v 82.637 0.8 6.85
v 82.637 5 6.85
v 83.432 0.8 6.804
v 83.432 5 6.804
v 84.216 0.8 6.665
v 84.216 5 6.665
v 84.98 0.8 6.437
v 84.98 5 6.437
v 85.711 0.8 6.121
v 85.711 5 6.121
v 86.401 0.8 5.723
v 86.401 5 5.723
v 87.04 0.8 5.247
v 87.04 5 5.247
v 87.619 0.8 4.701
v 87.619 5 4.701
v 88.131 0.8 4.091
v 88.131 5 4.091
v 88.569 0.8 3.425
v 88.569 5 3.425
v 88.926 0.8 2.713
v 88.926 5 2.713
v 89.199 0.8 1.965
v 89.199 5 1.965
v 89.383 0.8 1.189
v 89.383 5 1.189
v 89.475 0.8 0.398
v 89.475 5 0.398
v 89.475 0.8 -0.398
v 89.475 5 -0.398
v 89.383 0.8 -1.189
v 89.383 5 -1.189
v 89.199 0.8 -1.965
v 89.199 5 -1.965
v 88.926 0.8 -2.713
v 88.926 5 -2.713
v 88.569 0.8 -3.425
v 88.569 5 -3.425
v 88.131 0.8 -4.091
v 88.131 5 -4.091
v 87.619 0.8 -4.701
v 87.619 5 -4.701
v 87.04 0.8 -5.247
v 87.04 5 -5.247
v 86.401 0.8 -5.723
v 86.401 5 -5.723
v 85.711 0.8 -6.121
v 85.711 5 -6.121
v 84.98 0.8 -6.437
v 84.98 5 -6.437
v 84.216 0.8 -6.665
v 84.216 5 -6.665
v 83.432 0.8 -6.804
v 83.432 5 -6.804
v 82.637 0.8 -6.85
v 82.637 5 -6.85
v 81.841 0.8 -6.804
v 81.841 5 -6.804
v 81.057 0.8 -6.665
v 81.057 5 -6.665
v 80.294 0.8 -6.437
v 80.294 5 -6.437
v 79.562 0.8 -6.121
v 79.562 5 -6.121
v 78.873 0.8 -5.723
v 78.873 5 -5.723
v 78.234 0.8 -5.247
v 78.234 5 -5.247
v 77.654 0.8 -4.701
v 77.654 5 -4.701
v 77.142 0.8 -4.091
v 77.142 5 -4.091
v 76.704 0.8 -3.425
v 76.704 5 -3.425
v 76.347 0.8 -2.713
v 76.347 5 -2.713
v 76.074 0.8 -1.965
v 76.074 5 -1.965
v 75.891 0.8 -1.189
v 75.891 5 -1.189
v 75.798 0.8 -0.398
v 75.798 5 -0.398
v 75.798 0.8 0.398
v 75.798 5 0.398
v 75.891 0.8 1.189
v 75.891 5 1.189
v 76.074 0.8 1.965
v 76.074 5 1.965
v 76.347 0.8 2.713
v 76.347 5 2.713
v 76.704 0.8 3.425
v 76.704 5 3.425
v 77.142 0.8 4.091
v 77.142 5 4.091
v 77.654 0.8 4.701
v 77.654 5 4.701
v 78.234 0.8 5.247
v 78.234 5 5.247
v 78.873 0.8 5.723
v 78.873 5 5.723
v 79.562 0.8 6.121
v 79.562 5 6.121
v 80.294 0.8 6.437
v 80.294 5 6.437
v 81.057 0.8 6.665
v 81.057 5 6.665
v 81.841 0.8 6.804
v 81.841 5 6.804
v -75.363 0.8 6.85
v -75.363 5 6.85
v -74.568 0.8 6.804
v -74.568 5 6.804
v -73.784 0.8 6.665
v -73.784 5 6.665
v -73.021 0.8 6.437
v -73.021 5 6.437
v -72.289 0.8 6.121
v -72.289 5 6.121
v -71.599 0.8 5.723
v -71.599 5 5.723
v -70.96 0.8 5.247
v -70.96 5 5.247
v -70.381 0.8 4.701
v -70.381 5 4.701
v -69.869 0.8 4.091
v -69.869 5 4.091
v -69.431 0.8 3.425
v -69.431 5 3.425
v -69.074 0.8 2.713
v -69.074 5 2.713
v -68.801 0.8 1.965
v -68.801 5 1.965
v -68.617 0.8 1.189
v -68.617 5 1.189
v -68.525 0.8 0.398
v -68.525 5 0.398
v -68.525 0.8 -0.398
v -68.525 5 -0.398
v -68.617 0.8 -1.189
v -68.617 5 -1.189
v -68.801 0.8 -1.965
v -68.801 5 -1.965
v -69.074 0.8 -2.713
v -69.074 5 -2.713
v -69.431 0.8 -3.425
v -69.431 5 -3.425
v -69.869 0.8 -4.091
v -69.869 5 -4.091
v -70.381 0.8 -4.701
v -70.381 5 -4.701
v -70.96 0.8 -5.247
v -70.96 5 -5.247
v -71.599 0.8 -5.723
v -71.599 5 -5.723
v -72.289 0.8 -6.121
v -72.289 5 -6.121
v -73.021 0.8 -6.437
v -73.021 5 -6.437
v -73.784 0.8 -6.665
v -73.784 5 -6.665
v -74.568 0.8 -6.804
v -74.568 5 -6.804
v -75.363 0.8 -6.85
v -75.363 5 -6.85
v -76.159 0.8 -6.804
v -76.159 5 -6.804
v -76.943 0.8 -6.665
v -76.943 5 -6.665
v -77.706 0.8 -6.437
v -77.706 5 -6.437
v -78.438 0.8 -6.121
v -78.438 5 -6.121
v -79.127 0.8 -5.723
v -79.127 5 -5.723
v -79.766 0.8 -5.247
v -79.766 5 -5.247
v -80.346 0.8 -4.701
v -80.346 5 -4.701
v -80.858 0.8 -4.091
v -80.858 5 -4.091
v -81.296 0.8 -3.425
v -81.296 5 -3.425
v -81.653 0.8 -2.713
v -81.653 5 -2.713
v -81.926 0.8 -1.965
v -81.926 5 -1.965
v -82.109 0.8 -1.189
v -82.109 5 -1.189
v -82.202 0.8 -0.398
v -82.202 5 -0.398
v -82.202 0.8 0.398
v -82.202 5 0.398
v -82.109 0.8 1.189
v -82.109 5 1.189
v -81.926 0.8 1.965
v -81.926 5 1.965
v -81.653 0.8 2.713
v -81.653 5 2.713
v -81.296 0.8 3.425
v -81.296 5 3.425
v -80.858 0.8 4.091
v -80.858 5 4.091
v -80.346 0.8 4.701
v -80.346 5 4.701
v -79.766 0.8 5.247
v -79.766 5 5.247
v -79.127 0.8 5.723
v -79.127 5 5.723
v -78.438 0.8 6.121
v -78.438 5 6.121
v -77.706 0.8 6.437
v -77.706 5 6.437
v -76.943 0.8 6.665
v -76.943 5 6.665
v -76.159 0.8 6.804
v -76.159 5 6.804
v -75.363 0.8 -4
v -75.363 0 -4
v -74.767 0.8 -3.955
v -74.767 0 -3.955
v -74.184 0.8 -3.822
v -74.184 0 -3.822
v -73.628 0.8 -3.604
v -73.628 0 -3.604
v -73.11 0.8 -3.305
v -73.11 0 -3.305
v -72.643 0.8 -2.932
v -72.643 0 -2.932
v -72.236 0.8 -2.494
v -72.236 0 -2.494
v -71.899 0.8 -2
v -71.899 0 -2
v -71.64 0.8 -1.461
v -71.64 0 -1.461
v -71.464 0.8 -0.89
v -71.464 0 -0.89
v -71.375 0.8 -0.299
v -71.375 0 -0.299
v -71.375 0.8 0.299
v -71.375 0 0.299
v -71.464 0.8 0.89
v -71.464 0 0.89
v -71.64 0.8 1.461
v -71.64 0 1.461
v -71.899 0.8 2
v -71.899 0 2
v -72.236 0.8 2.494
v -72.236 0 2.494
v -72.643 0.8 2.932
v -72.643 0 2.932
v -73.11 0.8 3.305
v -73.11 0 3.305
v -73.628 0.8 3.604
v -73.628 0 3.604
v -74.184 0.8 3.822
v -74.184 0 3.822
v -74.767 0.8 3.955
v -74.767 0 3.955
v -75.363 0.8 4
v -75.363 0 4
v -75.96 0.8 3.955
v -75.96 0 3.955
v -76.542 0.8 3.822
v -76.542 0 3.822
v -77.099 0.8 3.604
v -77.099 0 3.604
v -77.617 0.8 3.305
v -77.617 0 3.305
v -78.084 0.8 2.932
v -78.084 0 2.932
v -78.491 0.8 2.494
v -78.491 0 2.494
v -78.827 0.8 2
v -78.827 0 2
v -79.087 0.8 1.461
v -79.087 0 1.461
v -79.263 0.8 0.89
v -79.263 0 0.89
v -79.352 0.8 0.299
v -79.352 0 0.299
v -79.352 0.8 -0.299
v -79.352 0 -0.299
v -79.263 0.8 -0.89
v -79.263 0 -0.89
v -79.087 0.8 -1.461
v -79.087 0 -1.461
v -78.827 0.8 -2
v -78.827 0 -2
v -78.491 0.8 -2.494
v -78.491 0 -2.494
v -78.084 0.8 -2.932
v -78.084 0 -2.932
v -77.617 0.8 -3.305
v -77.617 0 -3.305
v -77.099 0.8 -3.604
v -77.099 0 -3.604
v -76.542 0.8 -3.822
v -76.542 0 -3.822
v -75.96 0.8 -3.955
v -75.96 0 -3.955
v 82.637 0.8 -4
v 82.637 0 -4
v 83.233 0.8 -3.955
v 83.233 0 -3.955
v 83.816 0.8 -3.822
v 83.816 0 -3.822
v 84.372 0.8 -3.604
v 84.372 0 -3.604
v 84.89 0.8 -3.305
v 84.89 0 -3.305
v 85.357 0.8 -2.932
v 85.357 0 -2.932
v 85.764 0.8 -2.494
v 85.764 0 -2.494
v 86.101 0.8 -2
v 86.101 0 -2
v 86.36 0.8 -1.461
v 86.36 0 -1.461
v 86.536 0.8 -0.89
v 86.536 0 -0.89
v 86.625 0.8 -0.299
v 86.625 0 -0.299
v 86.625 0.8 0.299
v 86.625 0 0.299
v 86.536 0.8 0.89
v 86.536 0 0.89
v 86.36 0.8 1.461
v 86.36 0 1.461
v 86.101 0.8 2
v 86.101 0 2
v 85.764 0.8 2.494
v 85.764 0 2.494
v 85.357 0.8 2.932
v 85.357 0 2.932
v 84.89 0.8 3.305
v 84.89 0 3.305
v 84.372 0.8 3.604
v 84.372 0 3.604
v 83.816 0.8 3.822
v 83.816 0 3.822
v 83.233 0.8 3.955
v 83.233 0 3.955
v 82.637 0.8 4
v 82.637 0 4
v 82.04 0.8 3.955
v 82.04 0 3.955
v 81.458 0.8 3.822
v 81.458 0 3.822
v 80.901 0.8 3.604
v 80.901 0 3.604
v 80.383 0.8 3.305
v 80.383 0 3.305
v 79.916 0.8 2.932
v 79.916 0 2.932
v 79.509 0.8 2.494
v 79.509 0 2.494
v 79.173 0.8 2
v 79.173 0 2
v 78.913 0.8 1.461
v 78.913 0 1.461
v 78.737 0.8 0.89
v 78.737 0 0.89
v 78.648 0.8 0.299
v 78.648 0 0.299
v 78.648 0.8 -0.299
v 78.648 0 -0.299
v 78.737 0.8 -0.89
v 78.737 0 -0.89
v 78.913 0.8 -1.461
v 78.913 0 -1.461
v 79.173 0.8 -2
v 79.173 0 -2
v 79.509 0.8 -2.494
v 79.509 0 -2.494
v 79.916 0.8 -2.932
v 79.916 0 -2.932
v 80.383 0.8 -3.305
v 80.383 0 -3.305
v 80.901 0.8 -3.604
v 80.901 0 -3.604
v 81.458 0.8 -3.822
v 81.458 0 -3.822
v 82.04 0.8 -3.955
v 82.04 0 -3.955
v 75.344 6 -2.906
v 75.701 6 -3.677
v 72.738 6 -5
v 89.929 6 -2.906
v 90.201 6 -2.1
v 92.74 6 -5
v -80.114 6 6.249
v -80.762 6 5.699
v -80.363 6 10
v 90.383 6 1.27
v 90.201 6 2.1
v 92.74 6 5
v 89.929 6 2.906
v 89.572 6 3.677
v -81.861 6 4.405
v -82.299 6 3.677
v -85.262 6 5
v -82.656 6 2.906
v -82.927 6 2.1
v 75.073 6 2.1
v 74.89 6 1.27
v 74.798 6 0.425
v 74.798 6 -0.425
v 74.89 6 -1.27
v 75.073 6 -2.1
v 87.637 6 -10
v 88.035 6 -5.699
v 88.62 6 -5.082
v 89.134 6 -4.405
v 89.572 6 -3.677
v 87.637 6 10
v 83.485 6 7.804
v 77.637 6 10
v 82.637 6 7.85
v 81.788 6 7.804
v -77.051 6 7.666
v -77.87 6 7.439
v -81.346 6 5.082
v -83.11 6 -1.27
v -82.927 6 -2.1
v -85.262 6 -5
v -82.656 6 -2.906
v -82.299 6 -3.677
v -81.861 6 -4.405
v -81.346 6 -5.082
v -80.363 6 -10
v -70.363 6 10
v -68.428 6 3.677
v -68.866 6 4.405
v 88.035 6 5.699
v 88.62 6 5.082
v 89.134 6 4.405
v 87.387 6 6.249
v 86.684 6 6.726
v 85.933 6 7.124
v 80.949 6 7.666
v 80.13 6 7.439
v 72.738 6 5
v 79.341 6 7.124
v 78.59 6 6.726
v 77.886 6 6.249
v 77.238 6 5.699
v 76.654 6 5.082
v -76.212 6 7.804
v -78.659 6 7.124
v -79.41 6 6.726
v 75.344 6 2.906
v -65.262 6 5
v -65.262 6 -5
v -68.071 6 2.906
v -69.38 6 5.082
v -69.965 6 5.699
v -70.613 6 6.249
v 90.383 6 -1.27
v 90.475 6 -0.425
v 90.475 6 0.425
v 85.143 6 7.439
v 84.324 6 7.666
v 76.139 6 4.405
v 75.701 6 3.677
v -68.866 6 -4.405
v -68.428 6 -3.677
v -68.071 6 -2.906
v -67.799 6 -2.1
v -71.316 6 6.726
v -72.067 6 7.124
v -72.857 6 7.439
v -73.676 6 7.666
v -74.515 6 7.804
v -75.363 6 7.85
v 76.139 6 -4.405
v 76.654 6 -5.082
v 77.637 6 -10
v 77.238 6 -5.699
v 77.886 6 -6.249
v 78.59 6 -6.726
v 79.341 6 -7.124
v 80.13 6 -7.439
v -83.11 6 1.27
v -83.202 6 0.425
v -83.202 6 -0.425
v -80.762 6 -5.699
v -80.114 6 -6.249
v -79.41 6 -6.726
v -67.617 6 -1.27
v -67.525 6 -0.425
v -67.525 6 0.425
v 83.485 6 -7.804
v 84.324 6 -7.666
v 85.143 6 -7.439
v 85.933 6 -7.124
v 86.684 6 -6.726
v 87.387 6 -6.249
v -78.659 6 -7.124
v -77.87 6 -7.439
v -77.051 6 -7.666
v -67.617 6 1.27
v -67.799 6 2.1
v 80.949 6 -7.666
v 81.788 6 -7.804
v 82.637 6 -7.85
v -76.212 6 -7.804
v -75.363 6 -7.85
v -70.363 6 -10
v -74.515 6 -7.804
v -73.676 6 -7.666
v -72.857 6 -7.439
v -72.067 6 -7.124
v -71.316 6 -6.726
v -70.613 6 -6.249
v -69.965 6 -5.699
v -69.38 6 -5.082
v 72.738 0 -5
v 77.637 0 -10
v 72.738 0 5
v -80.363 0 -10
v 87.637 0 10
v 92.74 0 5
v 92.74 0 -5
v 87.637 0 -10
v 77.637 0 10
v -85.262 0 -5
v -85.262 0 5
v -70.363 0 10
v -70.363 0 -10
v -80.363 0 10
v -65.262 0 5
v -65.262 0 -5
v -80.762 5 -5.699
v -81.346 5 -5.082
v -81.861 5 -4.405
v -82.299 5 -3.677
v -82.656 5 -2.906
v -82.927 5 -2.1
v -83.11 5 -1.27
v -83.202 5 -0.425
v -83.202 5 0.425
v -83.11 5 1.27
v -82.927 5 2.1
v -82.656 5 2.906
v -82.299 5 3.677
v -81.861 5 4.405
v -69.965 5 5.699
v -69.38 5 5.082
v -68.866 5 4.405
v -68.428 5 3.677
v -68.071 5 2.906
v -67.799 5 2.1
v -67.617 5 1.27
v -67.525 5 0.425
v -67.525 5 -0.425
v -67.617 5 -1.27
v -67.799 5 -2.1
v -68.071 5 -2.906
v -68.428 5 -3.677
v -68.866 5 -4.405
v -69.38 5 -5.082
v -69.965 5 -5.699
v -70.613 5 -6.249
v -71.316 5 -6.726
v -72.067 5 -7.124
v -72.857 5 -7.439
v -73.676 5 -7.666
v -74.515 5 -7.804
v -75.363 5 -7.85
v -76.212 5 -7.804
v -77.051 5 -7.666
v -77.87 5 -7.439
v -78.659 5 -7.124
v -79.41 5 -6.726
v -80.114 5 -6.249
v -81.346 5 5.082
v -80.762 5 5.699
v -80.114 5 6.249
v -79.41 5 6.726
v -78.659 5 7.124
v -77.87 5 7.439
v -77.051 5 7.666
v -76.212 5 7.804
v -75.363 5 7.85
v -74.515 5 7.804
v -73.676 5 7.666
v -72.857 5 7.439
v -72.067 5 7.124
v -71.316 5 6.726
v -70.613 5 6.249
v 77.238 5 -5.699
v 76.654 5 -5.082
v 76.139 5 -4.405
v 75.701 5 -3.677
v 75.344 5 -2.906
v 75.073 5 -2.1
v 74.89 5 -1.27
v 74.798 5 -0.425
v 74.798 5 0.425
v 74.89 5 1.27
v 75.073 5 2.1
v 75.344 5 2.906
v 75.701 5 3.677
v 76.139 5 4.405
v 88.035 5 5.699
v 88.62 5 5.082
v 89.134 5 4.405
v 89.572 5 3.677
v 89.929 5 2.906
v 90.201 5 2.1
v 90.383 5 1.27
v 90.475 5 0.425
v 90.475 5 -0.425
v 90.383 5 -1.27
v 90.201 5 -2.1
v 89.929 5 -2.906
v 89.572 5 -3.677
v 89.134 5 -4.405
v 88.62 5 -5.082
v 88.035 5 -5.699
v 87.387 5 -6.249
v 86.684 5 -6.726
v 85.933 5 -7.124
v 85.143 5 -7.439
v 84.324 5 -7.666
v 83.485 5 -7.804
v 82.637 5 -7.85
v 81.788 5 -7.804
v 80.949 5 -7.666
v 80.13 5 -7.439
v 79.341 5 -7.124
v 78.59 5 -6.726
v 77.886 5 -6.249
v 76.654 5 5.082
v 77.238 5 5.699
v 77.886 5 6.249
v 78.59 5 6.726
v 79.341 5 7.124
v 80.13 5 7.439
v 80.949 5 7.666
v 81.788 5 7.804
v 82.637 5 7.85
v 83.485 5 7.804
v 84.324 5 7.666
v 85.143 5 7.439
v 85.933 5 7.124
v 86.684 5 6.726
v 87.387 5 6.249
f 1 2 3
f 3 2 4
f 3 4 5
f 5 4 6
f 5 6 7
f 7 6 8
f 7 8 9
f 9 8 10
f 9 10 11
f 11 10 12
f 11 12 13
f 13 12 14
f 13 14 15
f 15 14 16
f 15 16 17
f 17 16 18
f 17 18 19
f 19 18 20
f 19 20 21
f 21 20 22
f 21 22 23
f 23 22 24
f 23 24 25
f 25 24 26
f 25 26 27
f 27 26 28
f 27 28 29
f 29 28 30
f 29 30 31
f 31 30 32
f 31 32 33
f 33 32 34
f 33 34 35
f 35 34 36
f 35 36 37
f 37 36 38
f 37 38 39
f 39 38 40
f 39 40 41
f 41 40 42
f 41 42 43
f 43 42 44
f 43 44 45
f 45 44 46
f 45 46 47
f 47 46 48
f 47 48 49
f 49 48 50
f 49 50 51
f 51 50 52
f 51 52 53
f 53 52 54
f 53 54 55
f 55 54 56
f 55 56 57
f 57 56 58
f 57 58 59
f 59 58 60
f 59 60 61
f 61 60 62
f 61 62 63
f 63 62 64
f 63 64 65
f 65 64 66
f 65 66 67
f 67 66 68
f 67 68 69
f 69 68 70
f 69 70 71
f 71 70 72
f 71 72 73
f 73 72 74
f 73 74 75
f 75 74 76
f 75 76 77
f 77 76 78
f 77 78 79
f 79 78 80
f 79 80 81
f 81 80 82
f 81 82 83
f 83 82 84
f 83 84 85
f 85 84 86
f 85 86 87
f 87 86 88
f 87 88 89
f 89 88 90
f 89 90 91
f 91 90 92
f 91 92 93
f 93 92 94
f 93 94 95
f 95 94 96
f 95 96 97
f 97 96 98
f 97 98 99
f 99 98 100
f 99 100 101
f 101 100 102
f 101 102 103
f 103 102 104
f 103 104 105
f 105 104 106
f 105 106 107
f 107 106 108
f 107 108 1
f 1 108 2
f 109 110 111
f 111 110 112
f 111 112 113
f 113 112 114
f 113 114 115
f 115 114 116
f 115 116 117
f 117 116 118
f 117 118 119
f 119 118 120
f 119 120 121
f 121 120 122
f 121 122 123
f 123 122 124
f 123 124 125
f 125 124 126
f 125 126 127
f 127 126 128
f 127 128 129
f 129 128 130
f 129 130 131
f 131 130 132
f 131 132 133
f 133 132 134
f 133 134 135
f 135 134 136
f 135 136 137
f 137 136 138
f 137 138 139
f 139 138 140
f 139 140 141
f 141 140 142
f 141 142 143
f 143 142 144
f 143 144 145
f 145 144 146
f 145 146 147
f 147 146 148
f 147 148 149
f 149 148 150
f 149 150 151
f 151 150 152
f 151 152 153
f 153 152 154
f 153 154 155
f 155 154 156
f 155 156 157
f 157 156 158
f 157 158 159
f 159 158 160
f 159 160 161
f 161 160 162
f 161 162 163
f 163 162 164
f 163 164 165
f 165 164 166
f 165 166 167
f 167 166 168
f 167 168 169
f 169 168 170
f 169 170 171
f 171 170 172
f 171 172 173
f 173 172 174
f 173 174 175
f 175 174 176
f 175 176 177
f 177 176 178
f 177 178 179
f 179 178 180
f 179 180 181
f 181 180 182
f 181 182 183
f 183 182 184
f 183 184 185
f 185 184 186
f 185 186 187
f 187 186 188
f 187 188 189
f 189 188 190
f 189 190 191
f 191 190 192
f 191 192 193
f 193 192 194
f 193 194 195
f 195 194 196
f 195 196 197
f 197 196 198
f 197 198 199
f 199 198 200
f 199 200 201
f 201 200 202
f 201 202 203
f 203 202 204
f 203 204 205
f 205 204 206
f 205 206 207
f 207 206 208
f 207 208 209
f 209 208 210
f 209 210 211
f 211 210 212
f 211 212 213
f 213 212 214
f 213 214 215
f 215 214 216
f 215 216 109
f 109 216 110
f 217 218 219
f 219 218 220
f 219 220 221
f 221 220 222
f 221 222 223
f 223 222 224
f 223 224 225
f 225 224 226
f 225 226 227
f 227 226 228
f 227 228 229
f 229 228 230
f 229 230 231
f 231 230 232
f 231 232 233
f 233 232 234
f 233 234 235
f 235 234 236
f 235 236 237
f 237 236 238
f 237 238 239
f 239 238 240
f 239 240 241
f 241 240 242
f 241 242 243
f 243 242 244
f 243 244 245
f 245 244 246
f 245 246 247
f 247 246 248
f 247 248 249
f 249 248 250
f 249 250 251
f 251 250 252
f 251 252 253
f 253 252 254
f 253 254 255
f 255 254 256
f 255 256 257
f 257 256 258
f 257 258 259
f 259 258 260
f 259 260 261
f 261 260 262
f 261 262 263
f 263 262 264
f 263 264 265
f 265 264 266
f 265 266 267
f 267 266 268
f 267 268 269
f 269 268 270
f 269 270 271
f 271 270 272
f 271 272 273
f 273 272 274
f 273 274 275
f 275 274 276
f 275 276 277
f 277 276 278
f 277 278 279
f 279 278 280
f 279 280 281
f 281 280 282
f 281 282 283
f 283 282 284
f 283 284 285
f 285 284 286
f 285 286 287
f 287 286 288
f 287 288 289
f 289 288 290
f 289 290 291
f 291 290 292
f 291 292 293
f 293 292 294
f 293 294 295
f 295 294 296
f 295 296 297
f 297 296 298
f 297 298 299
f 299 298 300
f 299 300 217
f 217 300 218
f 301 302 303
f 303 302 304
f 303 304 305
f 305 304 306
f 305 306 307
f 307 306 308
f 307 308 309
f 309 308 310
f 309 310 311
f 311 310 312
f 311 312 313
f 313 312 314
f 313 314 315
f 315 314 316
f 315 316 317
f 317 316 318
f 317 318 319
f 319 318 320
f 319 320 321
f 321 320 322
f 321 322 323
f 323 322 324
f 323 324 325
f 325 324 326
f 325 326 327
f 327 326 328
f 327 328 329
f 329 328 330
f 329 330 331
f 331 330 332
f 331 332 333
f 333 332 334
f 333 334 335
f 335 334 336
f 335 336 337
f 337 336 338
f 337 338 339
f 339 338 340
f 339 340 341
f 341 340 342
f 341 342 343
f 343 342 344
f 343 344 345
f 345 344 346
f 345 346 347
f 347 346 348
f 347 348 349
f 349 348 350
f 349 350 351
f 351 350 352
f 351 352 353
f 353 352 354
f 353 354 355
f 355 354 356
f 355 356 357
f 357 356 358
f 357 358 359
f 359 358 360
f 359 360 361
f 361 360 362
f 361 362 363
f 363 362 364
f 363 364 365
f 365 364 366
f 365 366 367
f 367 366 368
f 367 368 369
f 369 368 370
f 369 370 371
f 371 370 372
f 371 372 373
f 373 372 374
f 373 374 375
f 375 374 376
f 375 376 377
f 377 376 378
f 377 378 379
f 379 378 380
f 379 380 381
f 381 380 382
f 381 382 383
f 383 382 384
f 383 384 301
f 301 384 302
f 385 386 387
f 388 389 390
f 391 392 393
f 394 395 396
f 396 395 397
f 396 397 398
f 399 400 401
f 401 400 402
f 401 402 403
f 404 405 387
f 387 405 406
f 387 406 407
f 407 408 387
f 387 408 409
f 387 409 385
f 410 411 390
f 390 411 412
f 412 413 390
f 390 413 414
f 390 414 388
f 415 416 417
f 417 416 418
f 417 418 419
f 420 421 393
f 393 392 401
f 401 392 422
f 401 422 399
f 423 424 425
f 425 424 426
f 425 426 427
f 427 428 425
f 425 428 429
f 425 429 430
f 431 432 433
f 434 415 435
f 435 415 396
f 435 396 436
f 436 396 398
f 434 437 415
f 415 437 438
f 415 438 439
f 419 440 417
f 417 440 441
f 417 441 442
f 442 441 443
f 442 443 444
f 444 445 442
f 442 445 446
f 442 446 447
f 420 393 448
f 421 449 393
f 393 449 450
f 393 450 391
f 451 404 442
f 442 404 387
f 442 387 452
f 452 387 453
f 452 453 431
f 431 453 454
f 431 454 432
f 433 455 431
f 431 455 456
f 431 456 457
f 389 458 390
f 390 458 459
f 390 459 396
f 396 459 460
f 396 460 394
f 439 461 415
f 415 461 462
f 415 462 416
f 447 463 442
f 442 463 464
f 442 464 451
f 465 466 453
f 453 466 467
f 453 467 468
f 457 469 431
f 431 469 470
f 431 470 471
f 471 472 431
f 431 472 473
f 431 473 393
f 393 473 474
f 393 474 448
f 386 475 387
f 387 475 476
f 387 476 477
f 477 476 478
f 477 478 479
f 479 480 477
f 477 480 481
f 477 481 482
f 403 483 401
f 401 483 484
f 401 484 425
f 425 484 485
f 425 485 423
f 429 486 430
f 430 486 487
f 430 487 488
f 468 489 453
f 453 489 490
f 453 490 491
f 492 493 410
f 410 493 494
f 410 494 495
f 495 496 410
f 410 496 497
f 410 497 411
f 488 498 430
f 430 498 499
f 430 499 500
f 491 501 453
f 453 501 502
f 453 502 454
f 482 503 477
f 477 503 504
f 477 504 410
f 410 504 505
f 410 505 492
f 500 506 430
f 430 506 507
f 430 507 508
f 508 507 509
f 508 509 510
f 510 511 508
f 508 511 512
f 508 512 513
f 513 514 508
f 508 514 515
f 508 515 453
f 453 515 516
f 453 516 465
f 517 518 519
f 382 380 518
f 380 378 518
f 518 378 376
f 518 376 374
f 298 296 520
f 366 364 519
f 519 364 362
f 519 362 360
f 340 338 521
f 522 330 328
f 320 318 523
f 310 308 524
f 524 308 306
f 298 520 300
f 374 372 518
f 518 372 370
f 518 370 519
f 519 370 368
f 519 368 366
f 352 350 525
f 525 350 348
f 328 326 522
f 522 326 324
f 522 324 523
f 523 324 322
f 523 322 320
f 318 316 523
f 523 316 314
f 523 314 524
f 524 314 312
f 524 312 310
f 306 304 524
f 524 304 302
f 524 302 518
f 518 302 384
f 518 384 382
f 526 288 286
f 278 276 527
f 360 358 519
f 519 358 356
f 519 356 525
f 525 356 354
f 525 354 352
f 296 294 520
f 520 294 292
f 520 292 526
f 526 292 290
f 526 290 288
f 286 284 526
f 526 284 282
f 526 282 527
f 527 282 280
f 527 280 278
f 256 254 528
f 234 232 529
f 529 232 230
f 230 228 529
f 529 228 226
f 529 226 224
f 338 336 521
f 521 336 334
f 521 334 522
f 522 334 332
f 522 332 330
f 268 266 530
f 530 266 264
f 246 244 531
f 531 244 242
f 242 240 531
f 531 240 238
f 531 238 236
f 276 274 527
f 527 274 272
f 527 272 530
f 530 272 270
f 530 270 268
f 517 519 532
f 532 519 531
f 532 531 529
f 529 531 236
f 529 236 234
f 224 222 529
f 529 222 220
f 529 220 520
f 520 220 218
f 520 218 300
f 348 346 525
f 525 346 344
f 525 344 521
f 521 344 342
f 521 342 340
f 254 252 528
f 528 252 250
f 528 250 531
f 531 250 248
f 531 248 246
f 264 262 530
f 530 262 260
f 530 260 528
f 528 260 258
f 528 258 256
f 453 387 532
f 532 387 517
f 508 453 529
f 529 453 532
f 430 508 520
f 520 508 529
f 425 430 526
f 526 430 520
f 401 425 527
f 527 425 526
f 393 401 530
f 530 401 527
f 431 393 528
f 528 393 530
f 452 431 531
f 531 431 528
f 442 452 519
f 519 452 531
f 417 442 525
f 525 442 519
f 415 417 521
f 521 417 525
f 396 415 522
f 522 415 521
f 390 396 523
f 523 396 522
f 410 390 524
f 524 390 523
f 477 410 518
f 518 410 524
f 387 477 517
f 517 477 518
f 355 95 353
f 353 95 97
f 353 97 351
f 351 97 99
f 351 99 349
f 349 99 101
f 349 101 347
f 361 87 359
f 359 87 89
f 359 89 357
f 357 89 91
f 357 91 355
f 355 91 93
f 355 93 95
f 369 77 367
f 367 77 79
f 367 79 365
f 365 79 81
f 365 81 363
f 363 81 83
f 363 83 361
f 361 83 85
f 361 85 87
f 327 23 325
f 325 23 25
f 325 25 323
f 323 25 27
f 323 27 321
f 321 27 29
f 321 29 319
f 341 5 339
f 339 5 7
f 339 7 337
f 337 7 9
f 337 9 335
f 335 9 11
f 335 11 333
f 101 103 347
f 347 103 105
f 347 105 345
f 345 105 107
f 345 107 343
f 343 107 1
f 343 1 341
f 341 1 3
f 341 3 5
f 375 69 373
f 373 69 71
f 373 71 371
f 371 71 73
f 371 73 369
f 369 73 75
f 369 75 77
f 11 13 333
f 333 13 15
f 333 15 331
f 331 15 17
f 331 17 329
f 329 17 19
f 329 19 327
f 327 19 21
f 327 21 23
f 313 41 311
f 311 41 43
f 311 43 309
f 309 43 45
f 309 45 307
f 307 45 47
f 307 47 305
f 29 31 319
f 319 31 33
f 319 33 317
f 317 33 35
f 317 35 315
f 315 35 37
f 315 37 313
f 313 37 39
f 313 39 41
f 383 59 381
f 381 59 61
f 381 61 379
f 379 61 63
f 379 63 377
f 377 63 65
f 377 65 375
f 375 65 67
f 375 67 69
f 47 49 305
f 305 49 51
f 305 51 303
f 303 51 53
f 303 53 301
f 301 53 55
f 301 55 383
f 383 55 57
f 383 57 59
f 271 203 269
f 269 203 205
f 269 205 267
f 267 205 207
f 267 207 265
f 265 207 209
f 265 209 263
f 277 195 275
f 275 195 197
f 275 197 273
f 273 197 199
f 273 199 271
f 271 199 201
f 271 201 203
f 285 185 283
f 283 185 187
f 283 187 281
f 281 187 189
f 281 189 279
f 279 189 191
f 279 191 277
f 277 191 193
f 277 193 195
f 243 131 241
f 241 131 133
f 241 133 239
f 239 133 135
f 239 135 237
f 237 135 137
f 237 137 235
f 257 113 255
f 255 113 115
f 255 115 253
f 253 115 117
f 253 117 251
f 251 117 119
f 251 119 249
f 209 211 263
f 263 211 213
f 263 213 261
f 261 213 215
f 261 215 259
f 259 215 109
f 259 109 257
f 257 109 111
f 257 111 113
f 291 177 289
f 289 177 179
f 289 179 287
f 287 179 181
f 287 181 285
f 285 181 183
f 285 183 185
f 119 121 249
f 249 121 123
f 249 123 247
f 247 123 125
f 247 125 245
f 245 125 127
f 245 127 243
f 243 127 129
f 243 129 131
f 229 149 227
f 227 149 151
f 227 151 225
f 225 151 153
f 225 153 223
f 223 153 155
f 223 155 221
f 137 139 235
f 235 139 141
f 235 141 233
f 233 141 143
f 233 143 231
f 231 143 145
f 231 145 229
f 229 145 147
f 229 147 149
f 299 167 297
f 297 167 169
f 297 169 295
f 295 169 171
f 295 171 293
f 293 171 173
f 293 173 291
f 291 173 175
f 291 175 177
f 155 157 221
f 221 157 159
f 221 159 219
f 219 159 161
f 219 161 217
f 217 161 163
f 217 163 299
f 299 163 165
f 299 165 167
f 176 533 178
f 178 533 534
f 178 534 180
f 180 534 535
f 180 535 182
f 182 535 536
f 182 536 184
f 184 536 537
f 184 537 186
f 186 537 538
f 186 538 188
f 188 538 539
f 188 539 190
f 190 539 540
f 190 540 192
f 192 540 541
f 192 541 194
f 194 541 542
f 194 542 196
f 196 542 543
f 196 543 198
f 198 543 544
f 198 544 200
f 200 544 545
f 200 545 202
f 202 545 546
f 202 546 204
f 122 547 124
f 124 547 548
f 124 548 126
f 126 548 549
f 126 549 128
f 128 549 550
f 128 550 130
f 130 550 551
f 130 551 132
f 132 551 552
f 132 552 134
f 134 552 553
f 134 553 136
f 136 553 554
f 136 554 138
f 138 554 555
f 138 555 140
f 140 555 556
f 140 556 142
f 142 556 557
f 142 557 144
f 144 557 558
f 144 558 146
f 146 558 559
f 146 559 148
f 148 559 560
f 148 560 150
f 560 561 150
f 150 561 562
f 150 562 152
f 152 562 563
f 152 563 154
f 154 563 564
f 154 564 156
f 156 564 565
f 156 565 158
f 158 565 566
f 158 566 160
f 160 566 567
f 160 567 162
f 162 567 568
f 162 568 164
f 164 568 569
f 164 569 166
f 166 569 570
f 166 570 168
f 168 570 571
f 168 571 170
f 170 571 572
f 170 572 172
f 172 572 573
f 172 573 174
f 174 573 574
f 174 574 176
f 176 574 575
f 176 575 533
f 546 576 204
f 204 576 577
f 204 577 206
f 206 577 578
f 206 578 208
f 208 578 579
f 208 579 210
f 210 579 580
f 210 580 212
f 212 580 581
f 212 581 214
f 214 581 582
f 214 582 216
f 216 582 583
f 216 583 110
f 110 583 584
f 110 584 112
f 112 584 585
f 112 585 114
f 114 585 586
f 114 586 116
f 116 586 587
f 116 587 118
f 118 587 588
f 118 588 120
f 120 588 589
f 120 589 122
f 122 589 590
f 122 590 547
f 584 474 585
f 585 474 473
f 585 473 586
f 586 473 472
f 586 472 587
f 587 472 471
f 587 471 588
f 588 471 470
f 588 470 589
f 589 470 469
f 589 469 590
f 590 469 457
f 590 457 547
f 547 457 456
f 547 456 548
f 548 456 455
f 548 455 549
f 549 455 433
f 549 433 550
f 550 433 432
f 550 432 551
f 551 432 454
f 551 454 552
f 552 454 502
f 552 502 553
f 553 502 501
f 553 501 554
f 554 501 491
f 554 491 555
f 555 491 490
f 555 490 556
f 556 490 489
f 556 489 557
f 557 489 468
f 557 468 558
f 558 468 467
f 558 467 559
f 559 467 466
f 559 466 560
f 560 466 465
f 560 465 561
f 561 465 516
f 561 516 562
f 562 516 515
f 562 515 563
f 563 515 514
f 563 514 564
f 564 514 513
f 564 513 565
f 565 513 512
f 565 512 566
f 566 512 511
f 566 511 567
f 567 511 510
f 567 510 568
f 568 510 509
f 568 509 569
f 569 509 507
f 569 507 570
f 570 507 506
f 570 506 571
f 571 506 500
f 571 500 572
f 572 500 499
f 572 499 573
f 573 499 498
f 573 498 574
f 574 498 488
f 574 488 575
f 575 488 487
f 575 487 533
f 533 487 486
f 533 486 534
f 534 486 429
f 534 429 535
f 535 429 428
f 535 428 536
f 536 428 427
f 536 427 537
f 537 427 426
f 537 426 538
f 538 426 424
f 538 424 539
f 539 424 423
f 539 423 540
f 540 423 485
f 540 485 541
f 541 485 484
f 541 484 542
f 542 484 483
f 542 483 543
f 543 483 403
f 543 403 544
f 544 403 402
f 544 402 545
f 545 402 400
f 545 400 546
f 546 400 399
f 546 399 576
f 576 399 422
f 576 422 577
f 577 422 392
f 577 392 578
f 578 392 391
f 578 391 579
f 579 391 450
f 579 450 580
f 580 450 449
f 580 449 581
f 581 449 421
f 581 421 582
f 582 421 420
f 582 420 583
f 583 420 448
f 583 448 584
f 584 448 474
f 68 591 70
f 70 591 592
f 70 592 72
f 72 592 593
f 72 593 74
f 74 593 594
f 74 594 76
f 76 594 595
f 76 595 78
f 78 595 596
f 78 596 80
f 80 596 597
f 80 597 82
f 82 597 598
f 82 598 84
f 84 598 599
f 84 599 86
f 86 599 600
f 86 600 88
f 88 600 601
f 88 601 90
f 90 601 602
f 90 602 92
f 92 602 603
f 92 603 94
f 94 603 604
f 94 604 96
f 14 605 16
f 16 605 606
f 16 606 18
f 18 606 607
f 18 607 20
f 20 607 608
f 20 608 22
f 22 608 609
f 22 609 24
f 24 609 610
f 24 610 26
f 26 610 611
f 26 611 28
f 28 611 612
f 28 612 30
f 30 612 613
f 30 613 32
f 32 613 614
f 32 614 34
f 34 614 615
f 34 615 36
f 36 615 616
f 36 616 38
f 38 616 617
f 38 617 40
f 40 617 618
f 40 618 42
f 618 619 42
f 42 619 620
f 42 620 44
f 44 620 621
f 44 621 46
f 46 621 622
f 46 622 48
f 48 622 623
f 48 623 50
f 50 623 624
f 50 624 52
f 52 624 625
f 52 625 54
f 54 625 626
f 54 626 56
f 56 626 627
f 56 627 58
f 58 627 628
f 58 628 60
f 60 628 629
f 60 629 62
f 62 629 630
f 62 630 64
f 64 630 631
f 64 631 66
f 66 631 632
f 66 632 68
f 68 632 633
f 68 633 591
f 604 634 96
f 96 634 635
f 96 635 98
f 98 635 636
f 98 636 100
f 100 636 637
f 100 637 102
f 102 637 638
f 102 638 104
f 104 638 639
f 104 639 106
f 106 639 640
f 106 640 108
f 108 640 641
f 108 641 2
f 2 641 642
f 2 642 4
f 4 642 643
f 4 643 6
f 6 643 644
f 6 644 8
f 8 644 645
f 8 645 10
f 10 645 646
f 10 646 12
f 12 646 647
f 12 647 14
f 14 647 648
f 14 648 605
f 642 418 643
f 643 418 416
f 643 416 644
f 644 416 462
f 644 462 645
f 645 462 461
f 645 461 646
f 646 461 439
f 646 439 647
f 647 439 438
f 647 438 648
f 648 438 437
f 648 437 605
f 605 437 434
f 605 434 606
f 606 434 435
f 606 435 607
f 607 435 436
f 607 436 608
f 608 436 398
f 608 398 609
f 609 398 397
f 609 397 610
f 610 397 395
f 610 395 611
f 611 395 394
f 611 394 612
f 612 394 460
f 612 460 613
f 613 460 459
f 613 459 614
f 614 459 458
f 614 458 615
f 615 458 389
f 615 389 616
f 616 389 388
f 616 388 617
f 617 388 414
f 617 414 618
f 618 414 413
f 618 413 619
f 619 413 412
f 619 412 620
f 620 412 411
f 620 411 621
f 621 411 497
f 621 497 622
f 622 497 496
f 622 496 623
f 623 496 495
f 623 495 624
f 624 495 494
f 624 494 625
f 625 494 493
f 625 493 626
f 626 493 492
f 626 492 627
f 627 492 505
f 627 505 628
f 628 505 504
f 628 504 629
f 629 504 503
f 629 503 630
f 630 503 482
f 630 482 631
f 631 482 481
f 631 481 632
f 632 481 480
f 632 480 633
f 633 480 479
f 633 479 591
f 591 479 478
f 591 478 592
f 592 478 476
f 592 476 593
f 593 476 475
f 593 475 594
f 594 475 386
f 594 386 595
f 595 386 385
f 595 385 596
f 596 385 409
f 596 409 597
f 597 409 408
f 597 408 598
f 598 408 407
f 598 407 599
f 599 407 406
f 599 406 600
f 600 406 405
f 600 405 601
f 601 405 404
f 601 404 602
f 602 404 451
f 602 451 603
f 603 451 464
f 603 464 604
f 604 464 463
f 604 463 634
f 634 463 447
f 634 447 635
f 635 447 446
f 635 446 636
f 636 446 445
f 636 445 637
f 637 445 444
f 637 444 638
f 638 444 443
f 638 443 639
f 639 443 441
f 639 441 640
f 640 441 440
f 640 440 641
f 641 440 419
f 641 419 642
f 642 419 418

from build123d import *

# Parameters (mm, degrees)
SKETCH_1_R          = 4
EXTRUDE_1_DEPTH     = 6
SKETCH_2_R          = 6.85
CUT_EXTRUDE_1_DEPTH = 5.2
SKETCH_3_R          = 7.85
CUT_EXTRUDE_2_DEPTH = 1


with BuildPart() as part:
    # 草图1 → 凸台-拉伸1 (new body)
    with BuildSketch(Plane(origin=(0, 0, 0), x_dir=(1, 0, 0), z_dir=(0, 1, 0))):
        Polygon((-65.26232397, 5), (-70.363344484, 10), (-80.363344484, 10), (-85.26232397, 5), (-85.26232397, -5), (-80.363344484, -10), (-70.363344484, -10), (-65.26232397, -5), (72.73767603, -5), (77.636655516, -10), (87.636655516, -10), (92.739759147, -5), (92.739759147, 5), (87.636655516, 10), (77.636655516, 10), (72.73767603, 5), align=None)
        with Locations(Location((-75.363344484, 0, 0), (0, 0, 270))):
            Circle(SKETCH_1_R, mode=Mode.SUBTRACT)
        with Locations(Location((82.636655516, 0, 0), (0, 0, 270))):
            Circle(SKETCH_1_R, mode=Mode.SUBTRACT)
    extrude(amount=EXTRUDE_1_DEPTH)

    # 草图2 → 切除-拉伸1 (cut)
    with BuildSketch(Plane(origin=(0, 6, 0), x_dir=(1, 0, 0), z_dir=(0, 1, 0))):
        with Locations(Location((82.636655516, 0, 0), (0, 0, 270))):
            Circle(SKETCH_2_R)
        with Locations(Location((-75.363344484, 0, 0), (0, 0, 270))):
            Circle(SKETCH_2_R)
    extrude(amount=-CUT_EXTRUDE_1_DEPTH, mode=Mode.SUBTRACT)

    # 草图3 → 切除-拉伸2 (cut)
    with BuildSketch(Plane(origin=(0, 6, 0), x_dir=(1, 0, 0), z_dir=(0, 1, 0))):
        with Locations(Location((82.636655516, 0, 0), (0, 0, 270))):
            Circle(SKETCH_3_R)
        with Locations(Location((-75.363344484, 0, 0), (0, 0, 270))):
            Circle(SKETCH_3_R)
    extrude(amount=-CUT_EXTRUDE_2_DEPTH, mode=Mode.SUBTRACT)


solid = part.part
